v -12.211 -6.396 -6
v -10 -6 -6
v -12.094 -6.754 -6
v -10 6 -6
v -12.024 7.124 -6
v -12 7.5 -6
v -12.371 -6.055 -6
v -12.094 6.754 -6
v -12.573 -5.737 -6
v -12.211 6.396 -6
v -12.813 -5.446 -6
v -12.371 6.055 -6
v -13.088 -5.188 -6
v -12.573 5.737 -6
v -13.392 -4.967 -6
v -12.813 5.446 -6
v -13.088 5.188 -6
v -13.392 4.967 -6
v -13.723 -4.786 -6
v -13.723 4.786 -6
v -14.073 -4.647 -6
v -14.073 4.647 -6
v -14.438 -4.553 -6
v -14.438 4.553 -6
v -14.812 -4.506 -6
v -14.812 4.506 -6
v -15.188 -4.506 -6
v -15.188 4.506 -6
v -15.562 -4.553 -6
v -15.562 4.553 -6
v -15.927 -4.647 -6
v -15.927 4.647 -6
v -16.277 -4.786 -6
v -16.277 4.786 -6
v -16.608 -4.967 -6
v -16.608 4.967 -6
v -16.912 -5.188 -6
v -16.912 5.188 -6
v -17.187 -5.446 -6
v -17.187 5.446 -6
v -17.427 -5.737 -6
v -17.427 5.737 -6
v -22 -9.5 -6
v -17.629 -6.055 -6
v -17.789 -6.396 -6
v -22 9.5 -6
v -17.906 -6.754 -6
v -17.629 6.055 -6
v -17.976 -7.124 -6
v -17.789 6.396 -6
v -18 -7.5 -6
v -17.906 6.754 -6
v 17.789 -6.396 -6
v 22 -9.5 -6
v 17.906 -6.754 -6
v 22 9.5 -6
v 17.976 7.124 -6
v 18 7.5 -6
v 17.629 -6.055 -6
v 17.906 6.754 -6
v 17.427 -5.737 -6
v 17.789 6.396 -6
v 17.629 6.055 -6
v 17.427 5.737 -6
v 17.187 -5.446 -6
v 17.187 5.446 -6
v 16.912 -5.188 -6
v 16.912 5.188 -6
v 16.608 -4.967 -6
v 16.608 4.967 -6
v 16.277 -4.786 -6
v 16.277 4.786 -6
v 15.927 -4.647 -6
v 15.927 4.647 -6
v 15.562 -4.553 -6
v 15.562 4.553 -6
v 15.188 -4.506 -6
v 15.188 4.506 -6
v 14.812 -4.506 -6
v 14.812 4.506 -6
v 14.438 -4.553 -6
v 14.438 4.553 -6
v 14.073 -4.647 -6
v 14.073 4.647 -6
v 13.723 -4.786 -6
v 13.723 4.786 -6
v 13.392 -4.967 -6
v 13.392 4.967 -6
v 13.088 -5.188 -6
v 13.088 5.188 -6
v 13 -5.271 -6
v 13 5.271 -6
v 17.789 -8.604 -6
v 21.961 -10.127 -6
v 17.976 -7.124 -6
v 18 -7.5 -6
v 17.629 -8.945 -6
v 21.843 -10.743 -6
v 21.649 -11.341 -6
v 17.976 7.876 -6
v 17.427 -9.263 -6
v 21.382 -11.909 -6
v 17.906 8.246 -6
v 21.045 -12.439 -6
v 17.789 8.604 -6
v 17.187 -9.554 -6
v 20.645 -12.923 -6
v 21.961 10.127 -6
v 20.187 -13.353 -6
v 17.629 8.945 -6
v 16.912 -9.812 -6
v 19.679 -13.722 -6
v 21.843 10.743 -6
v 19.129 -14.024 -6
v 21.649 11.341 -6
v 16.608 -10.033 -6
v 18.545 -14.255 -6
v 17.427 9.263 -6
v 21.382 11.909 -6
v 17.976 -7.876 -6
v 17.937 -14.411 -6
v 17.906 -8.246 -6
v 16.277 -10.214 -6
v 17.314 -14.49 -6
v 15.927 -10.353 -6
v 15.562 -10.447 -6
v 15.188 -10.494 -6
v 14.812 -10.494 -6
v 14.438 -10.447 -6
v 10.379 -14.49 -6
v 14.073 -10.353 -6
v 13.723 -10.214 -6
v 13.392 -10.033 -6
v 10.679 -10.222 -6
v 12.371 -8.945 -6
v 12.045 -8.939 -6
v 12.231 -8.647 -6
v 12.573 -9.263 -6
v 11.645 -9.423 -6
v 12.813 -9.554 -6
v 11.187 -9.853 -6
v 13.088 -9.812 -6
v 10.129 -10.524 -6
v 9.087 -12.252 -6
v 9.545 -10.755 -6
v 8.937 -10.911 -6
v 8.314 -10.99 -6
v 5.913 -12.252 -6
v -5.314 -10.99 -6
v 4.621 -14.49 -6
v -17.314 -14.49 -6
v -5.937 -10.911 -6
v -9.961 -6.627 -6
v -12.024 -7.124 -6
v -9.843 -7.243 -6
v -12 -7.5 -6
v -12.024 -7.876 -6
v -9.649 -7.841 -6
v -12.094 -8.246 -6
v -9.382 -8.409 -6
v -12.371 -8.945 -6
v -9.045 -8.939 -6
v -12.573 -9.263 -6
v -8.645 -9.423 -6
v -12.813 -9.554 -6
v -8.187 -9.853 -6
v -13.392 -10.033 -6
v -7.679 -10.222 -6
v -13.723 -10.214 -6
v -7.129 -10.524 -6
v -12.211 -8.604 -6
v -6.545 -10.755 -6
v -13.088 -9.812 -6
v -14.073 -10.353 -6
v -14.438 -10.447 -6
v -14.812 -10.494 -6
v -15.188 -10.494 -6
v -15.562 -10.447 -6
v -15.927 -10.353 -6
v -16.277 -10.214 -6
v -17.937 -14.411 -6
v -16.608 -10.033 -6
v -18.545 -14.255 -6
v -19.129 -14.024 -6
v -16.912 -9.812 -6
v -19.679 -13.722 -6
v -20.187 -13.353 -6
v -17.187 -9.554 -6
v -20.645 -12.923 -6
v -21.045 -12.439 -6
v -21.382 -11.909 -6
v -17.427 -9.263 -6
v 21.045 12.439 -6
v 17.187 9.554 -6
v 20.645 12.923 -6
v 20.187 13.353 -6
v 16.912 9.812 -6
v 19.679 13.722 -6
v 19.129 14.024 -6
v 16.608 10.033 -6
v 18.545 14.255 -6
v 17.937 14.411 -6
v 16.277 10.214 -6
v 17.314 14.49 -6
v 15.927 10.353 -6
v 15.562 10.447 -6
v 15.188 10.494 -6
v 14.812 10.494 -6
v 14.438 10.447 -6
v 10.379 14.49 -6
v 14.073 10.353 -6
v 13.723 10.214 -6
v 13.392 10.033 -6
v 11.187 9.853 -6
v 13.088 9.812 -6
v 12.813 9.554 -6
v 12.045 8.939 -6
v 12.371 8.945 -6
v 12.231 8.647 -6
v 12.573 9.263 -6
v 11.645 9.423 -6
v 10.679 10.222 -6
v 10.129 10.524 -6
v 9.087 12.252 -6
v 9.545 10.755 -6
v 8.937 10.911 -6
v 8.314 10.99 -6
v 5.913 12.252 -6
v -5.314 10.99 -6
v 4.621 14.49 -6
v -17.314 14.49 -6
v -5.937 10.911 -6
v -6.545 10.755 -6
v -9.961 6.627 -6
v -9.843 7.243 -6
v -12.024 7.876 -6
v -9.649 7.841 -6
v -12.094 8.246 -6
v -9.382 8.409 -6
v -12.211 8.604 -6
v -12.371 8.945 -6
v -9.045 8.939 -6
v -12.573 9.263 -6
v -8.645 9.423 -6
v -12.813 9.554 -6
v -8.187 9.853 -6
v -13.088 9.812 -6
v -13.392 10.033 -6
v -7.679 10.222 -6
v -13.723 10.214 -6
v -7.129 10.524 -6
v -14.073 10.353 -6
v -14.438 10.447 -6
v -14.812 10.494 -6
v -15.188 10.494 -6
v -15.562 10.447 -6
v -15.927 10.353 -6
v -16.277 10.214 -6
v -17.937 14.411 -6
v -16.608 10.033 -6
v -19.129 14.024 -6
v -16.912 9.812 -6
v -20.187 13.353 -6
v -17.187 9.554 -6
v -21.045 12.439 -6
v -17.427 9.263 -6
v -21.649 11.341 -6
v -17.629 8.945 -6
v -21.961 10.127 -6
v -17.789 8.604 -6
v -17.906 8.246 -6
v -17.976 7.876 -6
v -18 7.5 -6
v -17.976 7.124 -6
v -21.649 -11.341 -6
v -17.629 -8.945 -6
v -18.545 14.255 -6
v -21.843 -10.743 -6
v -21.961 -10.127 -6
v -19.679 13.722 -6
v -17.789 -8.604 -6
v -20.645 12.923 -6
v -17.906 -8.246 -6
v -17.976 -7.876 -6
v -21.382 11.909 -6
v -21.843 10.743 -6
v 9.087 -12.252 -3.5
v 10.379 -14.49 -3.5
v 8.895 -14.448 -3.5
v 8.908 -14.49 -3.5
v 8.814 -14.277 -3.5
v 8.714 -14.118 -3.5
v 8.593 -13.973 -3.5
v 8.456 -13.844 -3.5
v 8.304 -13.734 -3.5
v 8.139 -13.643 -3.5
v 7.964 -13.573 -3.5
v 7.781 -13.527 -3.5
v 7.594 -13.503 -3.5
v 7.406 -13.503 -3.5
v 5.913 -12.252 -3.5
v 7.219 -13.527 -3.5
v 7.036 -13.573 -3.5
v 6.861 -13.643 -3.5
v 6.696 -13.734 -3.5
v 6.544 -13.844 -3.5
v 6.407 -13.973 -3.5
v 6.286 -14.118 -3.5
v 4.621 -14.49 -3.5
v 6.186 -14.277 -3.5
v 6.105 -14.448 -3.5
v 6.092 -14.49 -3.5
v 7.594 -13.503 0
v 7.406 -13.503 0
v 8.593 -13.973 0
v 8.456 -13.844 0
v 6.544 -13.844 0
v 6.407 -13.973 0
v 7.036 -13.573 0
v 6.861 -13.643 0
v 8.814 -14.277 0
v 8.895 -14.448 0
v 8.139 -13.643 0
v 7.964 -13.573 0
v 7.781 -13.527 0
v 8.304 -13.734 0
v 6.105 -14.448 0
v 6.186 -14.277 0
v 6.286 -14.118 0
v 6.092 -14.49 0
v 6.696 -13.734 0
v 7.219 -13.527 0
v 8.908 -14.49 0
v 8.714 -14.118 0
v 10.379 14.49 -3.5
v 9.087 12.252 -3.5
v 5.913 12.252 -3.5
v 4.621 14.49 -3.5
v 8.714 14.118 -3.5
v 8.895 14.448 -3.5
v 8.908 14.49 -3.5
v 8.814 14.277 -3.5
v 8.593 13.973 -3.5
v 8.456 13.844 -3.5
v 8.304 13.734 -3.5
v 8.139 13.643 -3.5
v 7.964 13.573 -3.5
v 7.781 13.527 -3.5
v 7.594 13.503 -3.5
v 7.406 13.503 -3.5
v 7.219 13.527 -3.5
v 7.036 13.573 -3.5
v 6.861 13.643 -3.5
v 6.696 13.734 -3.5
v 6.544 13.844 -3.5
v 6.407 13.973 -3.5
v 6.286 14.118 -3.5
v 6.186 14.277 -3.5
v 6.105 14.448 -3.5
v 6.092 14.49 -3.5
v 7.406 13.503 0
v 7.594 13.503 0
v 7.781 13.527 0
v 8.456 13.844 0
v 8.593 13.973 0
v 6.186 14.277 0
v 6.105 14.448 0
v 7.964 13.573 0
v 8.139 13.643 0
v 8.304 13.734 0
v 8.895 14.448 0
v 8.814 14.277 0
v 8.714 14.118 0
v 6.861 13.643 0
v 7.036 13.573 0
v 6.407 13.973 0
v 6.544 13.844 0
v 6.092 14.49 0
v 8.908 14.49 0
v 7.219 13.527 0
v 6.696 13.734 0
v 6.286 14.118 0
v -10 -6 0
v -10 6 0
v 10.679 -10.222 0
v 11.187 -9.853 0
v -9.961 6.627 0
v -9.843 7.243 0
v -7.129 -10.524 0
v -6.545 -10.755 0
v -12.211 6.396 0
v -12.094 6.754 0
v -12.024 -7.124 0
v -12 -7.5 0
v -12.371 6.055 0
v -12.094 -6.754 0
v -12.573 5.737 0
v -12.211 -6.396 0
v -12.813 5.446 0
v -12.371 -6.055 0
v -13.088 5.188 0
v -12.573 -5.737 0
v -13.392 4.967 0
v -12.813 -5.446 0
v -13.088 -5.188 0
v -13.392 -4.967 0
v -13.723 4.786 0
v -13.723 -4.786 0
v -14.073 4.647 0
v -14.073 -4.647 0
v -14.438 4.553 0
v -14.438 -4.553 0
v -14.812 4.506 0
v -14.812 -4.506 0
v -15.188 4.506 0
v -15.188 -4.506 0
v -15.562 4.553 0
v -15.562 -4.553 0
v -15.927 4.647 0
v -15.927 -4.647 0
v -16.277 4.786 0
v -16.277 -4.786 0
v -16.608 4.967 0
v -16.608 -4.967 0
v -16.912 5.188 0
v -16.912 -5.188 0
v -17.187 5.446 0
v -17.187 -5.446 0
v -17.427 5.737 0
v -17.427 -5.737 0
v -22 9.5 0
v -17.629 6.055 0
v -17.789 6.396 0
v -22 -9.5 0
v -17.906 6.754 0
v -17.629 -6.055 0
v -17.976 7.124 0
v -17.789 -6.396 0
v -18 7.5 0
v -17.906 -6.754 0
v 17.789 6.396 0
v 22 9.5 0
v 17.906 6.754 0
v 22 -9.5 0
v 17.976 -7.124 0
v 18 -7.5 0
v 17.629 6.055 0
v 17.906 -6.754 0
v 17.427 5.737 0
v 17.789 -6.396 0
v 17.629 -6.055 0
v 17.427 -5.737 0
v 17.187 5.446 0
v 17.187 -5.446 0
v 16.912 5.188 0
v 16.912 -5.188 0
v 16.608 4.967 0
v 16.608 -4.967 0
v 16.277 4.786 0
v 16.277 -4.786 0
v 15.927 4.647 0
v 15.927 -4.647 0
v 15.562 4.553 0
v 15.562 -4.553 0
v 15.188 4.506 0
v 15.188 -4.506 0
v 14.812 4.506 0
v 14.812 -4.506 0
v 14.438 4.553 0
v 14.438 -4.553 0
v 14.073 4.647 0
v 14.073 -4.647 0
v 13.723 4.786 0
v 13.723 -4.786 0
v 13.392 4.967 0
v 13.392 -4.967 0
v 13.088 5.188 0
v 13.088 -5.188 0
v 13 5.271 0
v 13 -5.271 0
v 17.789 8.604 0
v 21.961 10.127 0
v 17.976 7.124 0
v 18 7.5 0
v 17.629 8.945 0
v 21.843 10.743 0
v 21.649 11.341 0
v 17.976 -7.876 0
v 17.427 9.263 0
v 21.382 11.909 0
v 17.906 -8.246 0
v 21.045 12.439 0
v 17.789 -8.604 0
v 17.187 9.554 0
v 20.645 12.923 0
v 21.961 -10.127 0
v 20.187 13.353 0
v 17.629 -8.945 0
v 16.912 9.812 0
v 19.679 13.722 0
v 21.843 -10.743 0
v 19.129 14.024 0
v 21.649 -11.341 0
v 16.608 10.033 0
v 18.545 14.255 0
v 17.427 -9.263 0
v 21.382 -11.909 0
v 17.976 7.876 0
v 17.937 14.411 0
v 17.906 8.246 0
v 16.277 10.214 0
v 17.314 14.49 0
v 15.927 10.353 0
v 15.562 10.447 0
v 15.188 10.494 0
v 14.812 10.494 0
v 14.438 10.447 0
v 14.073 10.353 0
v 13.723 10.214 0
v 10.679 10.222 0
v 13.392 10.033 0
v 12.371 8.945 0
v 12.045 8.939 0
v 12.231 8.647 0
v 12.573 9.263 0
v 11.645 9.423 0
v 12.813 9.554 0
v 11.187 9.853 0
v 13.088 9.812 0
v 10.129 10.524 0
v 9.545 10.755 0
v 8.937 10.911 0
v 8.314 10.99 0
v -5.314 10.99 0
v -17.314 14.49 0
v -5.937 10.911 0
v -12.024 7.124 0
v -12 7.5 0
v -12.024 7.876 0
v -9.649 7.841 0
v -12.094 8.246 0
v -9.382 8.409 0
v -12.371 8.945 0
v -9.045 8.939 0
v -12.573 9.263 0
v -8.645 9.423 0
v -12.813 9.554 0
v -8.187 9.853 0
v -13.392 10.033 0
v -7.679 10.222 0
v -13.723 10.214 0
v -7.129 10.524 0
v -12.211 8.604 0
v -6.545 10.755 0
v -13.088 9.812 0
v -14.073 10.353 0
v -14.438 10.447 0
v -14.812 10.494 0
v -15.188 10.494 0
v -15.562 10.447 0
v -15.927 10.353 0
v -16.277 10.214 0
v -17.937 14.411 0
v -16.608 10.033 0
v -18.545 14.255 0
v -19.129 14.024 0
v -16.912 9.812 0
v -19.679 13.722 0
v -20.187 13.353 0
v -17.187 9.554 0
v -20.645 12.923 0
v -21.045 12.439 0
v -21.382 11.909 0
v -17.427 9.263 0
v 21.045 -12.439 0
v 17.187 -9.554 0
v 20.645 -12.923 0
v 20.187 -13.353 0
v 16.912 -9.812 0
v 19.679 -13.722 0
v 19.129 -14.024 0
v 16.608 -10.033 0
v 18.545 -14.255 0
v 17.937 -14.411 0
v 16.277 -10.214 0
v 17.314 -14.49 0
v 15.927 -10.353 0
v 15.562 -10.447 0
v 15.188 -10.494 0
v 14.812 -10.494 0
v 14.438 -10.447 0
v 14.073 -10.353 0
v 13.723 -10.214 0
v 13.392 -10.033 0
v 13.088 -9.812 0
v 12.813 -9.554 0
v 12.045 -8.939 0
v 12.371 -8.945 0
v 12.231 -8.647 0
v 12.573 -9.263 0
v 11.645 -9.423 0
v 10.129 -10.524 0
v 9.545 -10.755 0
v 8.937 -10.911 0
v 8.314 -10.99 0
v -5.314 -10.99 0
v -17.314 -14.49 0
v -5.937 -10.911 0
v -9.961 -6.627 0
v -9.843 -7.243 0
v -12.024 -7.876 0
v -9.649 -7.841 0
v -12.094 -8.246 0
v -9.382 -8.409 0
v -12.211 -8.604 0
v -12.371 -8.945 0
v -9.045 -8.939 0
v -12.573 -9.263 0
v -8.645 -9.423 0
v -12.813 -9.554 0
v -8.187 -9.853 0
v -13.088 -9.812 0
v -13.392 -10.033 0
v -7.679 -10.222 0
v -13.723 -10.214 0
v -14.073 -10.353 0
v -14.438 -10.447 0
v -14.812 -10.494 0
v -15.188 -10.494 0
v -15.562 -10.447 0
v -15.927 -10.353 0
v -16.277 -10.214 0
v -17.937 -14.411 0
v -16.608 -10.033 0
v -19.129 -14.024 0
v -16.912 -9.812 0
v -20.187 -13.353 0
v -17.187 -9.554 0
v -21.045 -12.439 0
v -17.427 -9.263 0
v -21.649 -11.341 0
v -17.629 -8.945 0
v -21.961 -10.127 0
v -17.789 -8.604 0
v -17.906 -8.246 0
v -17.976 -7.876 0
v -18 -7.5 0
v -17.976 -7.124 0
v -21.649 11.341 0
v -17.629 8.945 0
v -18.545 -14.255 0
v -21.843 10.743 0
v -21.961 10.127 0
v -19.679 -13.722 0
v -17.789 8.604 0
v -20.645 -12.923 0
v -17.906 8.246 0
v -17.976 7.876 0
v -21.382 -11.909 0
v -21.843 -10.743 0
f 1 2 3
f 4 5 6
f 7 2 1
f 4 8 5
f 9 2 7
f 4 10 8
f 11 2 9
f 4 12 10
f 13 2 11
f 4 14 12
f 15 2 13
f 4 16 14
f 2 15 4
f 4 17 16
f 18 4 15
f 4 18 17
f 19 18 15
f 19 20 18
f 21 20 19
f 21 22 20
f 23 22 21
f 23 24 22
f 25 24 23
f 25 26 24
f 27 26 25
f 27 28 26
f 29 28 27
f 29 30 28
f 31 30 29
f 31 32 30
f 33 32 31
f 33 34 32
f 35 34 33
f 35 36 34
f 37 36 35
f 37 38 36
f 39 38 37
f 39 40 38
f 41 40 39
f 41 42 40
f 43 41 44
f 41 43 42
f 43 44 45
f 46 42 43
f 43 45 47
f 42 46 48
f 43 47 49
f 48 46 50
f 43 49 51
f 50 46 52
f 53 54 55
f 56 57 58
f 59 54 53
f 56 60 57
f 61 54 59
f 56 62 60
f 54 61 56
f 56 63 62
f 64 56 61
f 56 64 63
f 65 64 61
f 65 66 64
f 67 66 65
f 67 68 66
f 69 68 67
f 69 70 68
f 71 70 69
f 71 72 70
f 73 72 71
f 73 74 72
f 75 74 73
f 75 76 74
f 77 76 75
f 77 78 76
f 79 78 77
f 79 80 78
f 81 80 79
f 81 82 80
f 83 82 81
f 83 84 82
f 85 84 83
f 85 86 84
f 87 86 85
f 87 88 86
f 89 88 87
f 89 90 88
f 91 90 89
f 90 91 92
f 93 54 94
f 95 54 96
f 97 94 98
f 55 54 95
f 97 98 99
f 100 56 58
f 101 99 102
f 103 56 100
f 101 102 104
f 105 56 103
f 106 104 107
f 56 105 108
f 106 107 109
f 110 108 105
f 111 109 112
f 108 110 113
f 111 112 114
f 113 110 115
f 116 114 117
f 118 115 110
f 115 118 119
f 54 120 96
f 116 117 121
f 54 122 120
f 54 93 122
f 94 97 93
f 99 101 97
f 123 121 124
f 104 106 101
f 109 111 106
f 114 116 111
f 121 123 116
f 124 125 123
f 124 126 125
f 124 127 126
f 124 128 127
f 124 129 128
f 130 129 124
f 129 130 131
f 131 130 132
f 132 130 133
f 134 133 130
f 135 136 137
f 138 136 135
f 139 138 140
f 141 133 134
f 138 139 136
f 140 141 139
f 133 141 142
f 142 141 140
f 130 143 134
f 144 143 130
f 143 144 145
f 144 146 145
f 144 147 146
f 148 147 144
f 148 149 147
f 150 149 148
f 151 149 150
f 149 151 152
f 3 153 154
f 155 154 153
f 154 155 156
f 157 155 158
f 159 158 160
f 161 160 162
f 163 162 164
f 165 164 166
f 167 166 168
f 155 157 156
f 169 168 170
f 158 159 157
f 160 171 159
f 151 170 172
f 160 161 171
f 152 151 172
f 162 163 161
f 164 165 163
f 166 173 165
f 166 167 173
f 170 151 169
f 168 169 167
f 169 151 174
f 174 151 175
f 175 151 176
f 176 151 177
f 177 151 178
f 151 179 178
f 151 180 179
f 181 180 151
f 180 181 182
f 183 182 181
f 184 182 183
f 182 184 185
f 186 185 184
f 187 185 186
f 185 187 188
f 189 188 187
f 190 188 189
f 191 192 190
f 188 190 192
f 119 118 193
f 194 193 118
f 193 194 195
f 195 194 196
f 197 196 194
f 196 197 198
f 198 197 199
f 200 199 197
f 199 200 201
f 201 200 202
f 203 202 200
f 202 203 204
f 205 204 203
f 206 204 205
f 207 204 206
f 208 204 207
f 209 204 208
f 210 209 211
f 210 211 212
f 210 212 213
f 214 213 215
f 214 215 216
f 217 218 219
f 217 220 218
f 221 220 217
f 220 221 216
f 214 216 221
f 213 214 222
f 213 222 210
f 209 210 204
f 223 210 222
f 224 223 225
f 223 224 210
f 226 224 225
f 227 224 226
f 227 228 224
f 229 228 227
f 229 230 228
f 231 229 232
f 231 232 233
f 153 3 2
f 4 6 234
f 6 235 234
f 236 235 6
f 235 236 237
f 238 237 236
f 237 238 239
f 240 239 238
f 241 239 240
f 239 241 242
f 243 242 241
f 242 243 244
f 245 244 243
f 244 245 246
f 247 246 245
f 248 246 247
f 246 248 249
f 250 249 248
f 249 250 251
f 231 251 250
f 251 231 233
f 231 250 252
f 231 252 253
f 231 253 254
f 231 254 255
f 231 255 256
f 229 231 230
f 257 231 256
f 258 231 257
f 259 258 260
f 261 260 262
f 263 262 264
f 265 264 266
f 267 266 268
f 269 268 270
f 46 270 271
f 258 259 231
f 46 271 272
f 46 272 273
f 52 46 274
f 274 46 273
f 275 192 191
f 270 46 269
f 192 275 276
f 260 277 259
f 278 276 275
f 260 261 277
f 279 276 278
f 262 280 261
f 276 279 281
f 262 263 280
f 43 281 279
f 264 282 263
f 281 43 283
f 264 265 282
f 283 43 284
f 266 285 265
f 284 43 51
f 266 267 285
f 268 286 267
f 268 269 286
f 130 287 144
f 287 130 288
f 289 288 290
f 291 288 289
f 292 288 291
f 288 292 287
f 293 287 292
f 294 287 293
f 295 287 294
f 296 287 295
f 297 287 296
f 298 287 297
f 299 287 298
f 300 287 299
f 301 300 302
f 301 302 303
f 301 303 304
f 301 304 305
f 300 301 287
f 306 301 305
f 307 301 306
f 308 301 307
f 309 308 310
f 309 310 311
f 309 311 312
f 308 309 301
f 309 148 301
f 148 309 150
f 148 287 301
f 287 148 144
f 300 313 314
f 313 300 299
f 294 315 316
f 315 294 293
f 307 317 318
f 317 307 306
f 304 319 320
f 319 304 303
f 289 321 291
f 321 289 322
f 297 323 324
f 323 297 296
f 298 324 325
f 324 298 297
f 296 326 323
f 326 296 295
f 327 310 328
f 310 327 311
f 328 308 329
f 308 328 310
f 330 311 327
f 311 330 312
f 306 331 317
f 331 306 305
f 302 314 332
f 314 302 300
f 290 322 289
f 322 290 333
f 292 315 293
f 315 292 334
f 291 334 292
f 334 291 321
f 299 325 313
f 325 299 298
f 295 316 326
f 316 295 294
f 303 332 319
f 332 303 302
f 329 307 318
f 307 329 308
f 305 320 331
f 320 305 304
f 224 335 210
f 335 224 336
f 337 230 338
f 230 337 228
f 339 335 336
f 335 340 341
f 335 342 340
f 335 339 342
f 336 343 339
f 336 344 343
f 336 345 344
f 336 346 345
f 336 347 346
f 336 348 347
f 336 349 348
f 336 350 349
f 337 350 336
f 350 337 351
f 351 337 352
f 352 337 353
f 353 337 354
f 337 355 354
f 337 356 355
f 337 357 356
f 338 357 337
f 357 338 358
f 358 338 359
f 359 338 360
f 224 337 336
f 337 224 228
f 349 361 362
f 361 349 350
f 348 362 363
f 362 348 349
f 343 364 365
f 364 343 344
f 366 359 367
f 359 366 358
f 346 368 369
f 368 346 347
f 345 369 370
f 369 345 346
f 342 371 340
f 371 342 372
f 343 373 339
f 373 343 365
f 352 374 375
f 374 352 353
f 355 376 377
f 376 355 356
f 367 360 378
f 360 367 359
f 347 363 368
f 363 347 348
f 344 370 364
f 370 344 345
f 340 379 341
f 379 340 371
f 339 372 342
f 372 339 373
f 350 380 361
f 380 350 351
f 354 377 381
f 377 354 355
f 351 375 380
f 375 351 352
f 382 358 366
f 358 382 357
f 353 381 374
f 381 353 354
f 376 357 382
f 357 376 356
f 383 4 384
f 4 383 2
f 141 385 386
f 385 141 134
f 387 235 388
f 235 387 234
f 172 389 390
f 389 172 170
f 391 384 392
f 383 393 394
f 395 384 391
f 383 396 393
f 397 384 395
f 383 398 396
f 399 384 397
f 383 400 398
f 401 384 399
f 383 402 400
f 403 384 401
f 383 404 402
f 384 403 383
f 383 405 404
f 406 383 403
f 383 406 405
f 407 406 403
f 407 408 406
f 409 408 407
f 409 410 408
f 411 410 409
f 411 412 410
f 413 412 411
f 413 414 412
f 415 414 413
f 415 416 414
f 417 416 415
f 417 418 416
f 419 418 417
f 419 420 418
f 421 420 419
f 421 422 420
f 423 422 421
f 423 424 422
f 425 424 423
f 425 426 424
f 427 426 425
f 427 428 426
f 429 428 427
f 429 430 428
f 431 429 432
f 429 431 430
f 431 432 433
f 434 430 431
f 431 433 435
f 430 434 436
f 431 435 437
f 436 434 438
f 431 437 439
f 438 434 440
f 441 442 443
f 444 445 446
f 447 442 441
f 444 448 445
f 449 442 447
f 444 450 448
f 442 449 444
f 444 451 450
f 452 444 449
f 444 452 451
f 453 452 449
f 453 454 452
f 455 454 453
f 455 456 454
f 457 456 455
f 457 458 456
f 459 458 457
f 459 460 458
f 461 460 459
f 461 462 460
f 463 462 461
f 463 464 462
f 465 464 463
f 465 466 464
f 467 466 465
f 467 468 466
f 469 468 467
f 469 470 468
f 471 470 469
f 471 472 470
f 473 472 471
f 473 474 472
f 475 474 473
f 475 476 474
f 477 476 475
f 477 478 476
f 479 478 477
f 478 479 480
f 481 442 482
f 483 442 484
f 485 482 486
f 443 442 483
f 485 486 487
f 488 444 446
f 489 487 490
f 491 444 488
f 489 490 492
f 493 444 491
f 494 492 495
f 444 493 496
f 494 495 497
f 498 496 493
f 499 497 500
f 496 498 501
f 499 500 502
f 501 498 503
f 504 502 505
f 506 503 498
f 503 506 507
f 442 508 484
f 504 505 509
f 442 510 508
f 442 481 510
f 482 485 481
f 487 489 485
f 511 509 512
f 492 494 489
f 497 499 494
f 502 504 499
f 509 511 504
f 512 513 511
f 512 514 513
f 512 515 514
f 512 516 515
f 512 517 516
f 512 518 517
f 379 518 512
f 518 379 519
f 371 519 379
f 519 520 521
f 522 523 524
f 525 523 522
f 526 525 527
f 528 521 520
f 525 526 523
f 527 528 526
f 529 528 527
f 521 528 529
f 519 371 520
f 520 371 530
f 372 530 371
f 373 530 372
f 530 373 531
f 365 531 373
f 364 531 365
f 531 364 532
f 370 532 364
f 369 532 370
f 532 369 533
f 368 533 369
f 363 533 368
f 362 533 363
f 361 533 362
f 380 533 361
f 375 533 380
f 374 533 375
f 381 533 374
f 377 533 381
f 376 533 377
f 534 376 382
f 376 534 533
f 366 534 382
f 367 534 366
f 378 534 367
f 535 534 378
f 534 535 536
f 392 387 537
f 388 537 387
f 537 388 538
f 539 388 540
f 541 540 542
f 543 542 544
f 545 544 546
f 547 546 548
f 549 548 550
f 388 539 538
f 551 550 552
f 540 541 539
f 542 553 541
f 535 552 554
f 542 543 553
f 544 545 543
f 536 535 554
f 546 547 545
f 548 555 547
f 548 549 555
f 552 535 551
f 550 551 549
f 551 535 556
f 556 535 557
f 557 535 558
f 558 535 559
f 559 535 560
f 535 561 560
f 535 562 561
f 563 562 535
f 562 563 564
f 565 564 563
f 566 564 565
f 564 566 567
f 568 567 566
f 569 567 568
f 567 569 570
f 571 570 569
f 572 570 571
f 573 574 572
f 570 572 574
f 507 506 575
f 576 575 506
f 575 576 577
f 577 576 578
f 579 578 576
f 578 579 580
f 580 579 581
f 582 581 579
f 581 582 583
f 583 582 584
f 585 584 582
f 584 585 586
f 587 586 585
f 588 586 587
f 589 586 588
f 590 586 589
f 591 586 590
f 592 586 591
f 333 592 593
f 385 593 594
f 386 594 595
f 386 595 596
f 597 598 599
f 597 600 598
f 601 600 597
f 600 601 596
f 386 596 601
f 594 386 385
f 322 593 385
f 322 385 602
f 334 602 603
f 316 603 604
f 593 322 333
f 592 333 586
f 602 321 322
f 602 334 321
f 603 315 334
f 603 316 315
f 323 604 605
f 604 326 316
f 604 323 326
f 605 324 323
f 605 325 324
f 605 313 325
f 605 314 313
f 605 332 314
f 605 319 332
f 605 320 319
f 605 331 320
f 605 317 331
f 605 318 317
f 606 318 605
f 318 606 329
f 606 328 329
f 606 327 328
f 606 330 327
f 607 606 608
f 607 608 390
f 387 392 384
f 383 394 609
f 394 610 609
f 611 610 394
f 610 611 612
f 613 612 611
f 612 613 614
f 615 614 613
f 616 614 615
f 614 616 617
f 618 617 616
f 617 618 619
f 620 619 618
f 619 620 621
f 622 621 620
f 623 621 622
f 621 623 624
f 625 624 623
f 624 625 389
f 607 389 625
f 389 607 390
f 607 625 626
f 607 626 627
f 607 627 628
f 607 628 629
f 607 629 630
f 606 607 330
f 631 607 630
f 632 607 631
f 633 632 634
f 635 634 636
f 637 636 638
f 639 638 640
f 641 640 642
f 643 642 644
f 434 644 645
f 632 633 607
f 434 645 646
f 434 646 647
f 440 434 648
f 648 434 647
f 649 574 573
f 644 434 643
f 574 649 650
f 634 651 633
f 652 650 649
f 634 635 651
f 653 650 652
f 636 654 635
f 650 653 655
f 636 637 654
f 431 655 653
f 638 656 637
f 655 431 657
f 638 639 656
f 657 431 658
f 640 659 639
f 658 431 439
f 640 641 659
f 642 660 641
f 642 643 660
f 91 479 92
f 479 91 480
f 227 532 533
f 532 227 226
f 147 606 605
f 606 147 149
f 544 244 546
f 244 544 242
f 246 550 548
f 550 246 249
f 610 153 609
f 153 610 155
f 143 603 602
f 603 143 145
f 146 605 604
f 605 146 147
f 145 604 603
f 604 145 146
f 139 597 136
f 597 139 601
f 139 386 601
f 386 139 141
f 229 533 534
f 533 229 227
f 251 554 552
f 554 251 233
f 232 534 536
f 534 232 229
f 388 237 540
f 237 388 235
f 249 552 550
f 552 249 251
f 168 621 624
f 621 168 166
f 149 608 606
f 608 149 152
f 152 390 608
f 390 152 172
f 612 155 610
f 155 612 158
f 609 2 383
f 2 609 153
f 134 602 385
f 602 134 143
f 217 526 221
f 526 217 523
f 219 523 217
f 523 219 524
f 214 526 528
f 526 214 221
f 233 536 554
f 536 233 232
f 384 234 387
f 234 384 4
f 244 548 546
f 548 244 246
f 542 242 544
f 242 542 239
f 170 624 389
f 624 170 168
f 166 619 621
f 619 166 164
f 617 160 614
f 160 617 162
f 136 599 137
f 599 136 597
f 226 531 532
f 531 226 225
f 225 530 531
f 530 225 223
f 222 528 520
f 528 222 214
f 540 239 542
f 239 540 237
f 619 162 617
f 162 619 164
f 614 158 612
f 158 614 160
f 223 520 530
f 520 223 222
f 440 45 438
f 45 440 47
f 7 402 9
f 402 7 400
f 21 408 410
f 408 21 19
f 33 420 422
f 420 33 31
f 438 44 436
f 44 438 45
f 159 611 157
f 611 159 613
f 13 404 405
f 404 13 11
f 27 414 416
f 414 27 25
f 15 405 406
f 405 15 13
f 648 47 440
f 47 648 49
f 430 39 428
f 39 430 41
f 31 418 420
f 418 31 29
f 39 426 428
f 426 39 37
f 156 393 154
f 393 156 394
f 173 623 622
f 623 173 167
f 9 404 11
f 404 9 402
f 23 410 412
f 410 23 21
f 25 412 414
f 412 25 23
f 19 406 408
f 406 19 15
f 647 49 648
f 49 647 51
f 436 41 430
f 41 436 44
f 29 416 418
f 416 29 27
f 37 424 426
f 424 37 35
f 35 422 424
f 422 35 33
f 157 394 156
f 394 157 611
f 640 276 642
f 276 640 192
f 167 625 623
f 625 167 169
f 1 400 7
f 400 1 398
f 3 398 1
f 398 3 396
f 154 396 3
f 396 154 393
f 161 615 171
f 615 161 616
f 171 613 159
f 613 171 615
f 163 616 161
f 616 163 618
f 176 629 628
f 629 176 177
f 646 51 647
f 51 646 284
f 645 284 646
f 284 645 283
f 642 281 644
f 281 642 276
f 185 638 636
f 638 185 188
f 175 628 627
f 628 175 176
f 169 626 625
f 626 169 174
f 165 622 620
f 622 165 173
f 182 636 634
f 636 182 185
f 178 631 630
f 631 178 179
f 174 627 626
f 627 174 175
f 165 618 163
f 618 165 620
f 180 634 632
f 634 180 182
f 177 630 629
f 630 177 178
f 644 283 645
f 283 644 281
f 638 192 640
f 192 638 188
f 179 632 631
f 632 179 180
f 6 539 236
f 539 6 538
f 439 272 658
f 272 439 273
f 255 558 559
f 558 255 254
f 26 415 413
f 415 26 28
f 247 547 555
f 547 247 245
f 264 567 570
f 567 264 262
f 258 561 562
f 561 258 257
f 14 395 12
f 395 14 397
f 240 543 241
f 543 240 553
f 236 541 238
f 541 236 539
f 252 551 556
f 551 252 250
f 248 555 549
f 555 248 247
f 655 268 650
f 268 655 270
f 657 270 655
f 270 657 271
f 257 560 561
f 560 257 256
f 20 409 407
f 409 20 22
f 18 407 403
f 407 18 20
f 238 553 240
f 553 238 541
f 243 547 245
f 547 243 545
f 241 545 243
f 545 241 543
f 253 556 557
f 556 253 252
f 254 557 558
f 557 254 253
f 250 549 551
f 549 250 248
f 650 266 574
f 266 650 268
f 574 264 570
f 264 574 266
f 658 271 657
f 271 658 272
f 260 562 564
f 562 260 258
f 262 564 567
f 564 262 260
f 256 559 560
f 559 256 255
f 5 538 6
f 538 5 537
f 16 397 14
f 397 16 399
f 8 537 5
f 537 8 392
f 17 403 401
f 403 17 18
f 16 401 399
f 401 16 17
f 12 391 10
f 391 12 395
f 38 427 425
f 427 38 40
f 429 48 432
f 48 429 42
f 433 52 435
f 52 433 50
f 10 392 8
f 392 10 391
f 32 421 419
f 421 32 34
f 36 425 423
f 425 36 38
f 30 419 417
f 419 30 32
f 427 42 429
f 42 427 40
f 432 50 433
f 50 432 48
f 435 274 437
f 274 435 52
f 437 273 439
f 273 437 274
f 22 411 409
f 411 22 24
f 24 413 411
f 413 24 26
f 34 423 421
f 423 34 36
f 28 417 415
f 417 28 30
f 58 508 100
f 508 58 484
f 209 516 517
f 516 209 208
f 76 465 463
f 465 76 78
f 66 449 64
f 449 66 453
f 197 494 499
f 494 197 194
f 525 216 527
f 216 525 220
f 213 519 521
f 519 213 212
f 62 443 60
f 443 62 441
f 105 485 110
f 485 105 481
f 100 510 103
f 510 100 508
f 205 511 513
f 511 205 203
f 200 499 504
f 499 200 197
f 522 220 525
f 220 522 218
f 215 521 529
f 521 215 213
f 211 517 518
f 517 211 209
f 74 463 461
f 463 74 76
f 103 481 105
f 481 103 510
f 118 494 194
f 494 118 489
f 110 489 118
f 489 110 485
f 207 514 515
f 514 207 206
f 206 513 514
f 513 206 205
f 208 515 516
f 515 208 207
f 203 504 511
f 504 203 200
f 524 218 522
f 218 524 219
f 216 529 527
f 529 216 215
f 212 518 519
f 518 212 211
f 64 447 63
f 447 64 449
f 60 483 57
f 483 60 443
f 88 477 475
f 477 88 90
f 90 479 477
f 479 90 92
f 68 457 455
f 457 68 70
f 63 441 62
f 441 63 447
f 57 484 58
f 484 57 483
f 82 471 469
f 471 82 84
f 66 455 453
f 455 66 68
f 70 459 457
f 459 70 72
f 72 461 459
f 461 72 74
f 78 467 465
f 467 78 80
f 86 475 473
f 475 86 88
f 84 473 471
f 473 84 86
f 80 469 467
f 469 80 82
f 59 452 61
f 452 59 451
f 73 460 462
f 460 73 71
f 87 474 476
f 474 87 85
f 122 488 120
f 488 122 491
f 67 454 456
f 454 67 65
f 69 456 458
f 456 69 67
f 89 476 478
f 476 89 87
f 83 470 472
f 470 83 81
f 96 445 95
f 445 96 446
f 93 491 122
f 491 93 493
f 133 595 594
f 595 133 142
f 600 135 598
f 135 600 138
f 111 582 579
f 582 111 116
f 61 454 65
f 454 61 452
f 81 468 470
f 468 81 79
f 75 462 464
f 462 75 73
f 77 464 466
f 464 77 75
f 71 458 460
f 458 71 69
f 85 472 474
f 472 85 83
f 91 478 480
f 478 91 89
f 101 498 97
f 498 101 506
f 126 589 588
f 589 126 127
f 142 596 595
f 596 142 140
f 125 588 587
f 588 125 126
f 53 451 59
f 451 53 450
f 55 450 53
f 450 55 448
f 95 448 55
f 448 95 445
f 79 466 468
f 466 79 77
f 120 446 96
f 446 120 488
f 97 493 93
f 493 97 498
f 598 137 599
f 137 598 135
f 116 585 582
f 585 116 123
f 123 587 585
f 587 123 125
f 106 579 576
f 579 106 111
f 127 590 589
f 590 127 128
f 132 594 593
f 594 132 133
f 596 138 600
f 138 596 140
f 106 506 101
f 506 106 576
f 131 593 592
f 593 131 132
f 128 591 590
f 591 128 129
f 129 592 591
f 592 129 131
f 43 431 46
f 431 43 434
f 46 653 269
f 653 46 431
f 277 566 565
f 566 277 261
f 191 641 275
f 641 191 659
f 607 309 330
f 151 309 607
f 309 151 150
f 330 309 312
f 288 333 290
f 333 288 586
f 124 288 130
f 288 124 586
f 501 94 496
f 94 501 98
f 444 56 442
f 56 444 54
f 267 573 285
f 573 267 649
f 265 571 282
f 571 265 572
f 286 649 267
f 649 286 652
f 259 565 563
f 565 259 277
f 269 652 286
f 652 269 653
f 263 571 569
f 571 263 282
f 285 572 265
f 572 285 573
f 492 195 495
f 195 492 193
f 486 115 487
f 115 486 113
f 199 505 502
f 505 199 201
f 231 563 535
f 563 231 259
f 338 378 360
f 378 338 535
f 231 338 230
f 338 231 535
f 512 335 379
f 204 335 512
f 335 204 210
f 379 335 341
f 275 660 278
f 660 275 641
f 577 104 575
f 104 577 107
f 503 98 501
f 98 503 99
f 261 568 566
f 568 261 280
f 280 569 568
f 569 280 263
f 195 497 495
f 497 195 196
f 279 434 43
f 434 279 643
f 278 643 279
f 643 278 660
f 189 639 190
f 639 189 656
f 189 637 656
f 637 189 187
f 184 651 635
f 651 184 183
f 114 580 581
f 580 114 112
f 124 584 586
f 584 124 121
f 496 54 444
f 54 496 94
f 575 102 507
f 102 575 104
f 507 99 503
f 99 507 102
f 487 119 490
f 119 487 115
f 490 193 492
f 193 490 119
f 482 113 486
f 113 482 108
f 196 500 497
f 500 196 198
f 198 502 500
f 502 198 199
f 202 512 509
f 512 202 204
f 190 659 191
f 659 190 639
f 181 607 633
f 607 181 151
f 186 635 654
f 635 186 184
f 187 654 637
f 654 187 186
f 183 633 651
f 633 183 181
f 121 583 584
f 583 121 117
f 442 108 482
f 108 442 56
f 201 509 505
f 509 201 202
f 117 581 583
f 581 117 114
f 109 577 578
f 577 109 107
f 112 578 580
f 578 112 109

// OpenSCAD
$fn = 50;


difference() {
	union() {
		translate(v = [0, 0, -6]) {
			hull() {
				translate(v = [-17.0000000000, 9.5000000000, 0]) {
					cylinder(h = 6, r = 5);
				}
				translate(v = [17.0000000000, 9.5000000000, 0]) {
					cylinder(h = 6, r = 5);
				}
				translate(v = [-17.0000000000, -9.5000000000, 0]) {
					cylinder(h = 6, r = 5);
				}
				translate(v = [17.0000000000, -9.5000000000, 0]) {
					cylinder(h = 6, r = 5);
				}
			}
		}
	}
	union() {
		translate(v = [7.5000000000, -15, -6]) {
			rotate(a = [0, 0, 0]) {
				difference() {
					union() {
						linear_extrude(height = 2.5000000000) {
							polygon(points = [[3.1735000000, 0.0000000000], [1.5867500000, 2.7483316189], [-1.5867500000, 2.7483316189], [-3.1735000000, 0.0000000000], [-1.5867500000, -2.7483316189], [1.5867500000, -2.7483316189]]);
						}
						translate(v = [0, 0, -50.0000000000]) {
							cylinder(h = 100, r = 1.5000000000);
						}
						translate(v = [0, 0, -50.0000000000]) {
							cylinder(h = 100, r = 1.5000000000);
						}
						translate(v = [0, 0, -50.0000000000]) {
							cylinder(h = 100, r = 1.5000000000);
						}
					}
					union();
				}
			}
		}
		translate(v = [7.5000000000, 15, -6]) {
			rotate(a = [0, 0, 0]) {
				difference() {
					union() {
						linear_extrude(height = 2.5000000000) {
							polygon(points = [[3.1735000000, 0.0000000000], [1.5867500000, 2.7483316189], [-1.5867500000, 2.7483316189], [-3.1735000000, 0.0000000000], [-1.5867500000, -2.7483316189], [1.5867500000, -2.7483316189]]);
						}
						translate(v = [0, 0, -50.0000000000]) {
							cylinder(h = 100, r = 1.5000000000);
						}
						translate(v = [0, 0, -50.0000000000]) {
							cylinder(h = 100, r = 1.5000000000);
						}
						translate(v = [0, 0, -50.0000000000]) {
							cylinder(h = 100, r = 1.5000000000);
						}
					}
					union();
				}
			}
		}
		translate(v = [0, 0, -3]) {
			rotate(a = [0, 0, 180]) {
				difference() {
					union() {
						translate(v = [-1.5000000000, 0, -3]) {
							#hull() {
								translate(v = [-6.5000000000, 6.0000000000, 0]) {
									cylinder(h = 6, r = 5);
								}
								translate(v = [6.5000000000, 6.0000000000, 0]) {
									cylinder(h = 6, r = 5);
								}
								translate(v = [-6.5000000000, -6.0000000000, 0]) {
									cylinder(h = 6, r = 5);
								}
								translate(v = [6.5000000000, -6.0000000000, 0]) {
									cylinder(h = 6, r = 5);
								}
							}
						}
					}
					union();
				}
			}
		}
		translate(v = [-15.0000000000, -7.5000000000, -50.0000000000]) {
			cylinder(h = 100, r = 3.0000000000);
		}
		translate(v = [-15.0000000000, 7.5000000000, -50.0000000000]) {
			cylinder(h = 100, r = 3.0000000000);
		}
		translate(v = [-15.0000000000, 7.5000000000, -50.0000000000]) {
			cylinder(h = 100, r = 3.0000000000);
		}
		translate(v = [0.0000000000, 7.5000000000, -50.0000000000]) {
			cylinder(h = 100, r = 3.0000000000);
		}
		translate(v = [15.0000000000, 7.5000000000, -50.0000000000]) {
			cylinder(h = 100, r = 3.0000000000);
		}
		translate(v = [-15.0000000000, -7.5000000000, -50.0000000000]) {
			cylinder(h = 100, r = 3.0000000000);
		}
		translate(v = [0.0000000000, -7.5000000000, -50.0000000000]) {
			cylinder(h = 100, r = 3.0000000000);
		}
		translate(v = [15.0000000000, -7.5000000000, -50.0000000000]) {
			cylinder(h = 100, r = 3.0000000000);
		}
	}
}
